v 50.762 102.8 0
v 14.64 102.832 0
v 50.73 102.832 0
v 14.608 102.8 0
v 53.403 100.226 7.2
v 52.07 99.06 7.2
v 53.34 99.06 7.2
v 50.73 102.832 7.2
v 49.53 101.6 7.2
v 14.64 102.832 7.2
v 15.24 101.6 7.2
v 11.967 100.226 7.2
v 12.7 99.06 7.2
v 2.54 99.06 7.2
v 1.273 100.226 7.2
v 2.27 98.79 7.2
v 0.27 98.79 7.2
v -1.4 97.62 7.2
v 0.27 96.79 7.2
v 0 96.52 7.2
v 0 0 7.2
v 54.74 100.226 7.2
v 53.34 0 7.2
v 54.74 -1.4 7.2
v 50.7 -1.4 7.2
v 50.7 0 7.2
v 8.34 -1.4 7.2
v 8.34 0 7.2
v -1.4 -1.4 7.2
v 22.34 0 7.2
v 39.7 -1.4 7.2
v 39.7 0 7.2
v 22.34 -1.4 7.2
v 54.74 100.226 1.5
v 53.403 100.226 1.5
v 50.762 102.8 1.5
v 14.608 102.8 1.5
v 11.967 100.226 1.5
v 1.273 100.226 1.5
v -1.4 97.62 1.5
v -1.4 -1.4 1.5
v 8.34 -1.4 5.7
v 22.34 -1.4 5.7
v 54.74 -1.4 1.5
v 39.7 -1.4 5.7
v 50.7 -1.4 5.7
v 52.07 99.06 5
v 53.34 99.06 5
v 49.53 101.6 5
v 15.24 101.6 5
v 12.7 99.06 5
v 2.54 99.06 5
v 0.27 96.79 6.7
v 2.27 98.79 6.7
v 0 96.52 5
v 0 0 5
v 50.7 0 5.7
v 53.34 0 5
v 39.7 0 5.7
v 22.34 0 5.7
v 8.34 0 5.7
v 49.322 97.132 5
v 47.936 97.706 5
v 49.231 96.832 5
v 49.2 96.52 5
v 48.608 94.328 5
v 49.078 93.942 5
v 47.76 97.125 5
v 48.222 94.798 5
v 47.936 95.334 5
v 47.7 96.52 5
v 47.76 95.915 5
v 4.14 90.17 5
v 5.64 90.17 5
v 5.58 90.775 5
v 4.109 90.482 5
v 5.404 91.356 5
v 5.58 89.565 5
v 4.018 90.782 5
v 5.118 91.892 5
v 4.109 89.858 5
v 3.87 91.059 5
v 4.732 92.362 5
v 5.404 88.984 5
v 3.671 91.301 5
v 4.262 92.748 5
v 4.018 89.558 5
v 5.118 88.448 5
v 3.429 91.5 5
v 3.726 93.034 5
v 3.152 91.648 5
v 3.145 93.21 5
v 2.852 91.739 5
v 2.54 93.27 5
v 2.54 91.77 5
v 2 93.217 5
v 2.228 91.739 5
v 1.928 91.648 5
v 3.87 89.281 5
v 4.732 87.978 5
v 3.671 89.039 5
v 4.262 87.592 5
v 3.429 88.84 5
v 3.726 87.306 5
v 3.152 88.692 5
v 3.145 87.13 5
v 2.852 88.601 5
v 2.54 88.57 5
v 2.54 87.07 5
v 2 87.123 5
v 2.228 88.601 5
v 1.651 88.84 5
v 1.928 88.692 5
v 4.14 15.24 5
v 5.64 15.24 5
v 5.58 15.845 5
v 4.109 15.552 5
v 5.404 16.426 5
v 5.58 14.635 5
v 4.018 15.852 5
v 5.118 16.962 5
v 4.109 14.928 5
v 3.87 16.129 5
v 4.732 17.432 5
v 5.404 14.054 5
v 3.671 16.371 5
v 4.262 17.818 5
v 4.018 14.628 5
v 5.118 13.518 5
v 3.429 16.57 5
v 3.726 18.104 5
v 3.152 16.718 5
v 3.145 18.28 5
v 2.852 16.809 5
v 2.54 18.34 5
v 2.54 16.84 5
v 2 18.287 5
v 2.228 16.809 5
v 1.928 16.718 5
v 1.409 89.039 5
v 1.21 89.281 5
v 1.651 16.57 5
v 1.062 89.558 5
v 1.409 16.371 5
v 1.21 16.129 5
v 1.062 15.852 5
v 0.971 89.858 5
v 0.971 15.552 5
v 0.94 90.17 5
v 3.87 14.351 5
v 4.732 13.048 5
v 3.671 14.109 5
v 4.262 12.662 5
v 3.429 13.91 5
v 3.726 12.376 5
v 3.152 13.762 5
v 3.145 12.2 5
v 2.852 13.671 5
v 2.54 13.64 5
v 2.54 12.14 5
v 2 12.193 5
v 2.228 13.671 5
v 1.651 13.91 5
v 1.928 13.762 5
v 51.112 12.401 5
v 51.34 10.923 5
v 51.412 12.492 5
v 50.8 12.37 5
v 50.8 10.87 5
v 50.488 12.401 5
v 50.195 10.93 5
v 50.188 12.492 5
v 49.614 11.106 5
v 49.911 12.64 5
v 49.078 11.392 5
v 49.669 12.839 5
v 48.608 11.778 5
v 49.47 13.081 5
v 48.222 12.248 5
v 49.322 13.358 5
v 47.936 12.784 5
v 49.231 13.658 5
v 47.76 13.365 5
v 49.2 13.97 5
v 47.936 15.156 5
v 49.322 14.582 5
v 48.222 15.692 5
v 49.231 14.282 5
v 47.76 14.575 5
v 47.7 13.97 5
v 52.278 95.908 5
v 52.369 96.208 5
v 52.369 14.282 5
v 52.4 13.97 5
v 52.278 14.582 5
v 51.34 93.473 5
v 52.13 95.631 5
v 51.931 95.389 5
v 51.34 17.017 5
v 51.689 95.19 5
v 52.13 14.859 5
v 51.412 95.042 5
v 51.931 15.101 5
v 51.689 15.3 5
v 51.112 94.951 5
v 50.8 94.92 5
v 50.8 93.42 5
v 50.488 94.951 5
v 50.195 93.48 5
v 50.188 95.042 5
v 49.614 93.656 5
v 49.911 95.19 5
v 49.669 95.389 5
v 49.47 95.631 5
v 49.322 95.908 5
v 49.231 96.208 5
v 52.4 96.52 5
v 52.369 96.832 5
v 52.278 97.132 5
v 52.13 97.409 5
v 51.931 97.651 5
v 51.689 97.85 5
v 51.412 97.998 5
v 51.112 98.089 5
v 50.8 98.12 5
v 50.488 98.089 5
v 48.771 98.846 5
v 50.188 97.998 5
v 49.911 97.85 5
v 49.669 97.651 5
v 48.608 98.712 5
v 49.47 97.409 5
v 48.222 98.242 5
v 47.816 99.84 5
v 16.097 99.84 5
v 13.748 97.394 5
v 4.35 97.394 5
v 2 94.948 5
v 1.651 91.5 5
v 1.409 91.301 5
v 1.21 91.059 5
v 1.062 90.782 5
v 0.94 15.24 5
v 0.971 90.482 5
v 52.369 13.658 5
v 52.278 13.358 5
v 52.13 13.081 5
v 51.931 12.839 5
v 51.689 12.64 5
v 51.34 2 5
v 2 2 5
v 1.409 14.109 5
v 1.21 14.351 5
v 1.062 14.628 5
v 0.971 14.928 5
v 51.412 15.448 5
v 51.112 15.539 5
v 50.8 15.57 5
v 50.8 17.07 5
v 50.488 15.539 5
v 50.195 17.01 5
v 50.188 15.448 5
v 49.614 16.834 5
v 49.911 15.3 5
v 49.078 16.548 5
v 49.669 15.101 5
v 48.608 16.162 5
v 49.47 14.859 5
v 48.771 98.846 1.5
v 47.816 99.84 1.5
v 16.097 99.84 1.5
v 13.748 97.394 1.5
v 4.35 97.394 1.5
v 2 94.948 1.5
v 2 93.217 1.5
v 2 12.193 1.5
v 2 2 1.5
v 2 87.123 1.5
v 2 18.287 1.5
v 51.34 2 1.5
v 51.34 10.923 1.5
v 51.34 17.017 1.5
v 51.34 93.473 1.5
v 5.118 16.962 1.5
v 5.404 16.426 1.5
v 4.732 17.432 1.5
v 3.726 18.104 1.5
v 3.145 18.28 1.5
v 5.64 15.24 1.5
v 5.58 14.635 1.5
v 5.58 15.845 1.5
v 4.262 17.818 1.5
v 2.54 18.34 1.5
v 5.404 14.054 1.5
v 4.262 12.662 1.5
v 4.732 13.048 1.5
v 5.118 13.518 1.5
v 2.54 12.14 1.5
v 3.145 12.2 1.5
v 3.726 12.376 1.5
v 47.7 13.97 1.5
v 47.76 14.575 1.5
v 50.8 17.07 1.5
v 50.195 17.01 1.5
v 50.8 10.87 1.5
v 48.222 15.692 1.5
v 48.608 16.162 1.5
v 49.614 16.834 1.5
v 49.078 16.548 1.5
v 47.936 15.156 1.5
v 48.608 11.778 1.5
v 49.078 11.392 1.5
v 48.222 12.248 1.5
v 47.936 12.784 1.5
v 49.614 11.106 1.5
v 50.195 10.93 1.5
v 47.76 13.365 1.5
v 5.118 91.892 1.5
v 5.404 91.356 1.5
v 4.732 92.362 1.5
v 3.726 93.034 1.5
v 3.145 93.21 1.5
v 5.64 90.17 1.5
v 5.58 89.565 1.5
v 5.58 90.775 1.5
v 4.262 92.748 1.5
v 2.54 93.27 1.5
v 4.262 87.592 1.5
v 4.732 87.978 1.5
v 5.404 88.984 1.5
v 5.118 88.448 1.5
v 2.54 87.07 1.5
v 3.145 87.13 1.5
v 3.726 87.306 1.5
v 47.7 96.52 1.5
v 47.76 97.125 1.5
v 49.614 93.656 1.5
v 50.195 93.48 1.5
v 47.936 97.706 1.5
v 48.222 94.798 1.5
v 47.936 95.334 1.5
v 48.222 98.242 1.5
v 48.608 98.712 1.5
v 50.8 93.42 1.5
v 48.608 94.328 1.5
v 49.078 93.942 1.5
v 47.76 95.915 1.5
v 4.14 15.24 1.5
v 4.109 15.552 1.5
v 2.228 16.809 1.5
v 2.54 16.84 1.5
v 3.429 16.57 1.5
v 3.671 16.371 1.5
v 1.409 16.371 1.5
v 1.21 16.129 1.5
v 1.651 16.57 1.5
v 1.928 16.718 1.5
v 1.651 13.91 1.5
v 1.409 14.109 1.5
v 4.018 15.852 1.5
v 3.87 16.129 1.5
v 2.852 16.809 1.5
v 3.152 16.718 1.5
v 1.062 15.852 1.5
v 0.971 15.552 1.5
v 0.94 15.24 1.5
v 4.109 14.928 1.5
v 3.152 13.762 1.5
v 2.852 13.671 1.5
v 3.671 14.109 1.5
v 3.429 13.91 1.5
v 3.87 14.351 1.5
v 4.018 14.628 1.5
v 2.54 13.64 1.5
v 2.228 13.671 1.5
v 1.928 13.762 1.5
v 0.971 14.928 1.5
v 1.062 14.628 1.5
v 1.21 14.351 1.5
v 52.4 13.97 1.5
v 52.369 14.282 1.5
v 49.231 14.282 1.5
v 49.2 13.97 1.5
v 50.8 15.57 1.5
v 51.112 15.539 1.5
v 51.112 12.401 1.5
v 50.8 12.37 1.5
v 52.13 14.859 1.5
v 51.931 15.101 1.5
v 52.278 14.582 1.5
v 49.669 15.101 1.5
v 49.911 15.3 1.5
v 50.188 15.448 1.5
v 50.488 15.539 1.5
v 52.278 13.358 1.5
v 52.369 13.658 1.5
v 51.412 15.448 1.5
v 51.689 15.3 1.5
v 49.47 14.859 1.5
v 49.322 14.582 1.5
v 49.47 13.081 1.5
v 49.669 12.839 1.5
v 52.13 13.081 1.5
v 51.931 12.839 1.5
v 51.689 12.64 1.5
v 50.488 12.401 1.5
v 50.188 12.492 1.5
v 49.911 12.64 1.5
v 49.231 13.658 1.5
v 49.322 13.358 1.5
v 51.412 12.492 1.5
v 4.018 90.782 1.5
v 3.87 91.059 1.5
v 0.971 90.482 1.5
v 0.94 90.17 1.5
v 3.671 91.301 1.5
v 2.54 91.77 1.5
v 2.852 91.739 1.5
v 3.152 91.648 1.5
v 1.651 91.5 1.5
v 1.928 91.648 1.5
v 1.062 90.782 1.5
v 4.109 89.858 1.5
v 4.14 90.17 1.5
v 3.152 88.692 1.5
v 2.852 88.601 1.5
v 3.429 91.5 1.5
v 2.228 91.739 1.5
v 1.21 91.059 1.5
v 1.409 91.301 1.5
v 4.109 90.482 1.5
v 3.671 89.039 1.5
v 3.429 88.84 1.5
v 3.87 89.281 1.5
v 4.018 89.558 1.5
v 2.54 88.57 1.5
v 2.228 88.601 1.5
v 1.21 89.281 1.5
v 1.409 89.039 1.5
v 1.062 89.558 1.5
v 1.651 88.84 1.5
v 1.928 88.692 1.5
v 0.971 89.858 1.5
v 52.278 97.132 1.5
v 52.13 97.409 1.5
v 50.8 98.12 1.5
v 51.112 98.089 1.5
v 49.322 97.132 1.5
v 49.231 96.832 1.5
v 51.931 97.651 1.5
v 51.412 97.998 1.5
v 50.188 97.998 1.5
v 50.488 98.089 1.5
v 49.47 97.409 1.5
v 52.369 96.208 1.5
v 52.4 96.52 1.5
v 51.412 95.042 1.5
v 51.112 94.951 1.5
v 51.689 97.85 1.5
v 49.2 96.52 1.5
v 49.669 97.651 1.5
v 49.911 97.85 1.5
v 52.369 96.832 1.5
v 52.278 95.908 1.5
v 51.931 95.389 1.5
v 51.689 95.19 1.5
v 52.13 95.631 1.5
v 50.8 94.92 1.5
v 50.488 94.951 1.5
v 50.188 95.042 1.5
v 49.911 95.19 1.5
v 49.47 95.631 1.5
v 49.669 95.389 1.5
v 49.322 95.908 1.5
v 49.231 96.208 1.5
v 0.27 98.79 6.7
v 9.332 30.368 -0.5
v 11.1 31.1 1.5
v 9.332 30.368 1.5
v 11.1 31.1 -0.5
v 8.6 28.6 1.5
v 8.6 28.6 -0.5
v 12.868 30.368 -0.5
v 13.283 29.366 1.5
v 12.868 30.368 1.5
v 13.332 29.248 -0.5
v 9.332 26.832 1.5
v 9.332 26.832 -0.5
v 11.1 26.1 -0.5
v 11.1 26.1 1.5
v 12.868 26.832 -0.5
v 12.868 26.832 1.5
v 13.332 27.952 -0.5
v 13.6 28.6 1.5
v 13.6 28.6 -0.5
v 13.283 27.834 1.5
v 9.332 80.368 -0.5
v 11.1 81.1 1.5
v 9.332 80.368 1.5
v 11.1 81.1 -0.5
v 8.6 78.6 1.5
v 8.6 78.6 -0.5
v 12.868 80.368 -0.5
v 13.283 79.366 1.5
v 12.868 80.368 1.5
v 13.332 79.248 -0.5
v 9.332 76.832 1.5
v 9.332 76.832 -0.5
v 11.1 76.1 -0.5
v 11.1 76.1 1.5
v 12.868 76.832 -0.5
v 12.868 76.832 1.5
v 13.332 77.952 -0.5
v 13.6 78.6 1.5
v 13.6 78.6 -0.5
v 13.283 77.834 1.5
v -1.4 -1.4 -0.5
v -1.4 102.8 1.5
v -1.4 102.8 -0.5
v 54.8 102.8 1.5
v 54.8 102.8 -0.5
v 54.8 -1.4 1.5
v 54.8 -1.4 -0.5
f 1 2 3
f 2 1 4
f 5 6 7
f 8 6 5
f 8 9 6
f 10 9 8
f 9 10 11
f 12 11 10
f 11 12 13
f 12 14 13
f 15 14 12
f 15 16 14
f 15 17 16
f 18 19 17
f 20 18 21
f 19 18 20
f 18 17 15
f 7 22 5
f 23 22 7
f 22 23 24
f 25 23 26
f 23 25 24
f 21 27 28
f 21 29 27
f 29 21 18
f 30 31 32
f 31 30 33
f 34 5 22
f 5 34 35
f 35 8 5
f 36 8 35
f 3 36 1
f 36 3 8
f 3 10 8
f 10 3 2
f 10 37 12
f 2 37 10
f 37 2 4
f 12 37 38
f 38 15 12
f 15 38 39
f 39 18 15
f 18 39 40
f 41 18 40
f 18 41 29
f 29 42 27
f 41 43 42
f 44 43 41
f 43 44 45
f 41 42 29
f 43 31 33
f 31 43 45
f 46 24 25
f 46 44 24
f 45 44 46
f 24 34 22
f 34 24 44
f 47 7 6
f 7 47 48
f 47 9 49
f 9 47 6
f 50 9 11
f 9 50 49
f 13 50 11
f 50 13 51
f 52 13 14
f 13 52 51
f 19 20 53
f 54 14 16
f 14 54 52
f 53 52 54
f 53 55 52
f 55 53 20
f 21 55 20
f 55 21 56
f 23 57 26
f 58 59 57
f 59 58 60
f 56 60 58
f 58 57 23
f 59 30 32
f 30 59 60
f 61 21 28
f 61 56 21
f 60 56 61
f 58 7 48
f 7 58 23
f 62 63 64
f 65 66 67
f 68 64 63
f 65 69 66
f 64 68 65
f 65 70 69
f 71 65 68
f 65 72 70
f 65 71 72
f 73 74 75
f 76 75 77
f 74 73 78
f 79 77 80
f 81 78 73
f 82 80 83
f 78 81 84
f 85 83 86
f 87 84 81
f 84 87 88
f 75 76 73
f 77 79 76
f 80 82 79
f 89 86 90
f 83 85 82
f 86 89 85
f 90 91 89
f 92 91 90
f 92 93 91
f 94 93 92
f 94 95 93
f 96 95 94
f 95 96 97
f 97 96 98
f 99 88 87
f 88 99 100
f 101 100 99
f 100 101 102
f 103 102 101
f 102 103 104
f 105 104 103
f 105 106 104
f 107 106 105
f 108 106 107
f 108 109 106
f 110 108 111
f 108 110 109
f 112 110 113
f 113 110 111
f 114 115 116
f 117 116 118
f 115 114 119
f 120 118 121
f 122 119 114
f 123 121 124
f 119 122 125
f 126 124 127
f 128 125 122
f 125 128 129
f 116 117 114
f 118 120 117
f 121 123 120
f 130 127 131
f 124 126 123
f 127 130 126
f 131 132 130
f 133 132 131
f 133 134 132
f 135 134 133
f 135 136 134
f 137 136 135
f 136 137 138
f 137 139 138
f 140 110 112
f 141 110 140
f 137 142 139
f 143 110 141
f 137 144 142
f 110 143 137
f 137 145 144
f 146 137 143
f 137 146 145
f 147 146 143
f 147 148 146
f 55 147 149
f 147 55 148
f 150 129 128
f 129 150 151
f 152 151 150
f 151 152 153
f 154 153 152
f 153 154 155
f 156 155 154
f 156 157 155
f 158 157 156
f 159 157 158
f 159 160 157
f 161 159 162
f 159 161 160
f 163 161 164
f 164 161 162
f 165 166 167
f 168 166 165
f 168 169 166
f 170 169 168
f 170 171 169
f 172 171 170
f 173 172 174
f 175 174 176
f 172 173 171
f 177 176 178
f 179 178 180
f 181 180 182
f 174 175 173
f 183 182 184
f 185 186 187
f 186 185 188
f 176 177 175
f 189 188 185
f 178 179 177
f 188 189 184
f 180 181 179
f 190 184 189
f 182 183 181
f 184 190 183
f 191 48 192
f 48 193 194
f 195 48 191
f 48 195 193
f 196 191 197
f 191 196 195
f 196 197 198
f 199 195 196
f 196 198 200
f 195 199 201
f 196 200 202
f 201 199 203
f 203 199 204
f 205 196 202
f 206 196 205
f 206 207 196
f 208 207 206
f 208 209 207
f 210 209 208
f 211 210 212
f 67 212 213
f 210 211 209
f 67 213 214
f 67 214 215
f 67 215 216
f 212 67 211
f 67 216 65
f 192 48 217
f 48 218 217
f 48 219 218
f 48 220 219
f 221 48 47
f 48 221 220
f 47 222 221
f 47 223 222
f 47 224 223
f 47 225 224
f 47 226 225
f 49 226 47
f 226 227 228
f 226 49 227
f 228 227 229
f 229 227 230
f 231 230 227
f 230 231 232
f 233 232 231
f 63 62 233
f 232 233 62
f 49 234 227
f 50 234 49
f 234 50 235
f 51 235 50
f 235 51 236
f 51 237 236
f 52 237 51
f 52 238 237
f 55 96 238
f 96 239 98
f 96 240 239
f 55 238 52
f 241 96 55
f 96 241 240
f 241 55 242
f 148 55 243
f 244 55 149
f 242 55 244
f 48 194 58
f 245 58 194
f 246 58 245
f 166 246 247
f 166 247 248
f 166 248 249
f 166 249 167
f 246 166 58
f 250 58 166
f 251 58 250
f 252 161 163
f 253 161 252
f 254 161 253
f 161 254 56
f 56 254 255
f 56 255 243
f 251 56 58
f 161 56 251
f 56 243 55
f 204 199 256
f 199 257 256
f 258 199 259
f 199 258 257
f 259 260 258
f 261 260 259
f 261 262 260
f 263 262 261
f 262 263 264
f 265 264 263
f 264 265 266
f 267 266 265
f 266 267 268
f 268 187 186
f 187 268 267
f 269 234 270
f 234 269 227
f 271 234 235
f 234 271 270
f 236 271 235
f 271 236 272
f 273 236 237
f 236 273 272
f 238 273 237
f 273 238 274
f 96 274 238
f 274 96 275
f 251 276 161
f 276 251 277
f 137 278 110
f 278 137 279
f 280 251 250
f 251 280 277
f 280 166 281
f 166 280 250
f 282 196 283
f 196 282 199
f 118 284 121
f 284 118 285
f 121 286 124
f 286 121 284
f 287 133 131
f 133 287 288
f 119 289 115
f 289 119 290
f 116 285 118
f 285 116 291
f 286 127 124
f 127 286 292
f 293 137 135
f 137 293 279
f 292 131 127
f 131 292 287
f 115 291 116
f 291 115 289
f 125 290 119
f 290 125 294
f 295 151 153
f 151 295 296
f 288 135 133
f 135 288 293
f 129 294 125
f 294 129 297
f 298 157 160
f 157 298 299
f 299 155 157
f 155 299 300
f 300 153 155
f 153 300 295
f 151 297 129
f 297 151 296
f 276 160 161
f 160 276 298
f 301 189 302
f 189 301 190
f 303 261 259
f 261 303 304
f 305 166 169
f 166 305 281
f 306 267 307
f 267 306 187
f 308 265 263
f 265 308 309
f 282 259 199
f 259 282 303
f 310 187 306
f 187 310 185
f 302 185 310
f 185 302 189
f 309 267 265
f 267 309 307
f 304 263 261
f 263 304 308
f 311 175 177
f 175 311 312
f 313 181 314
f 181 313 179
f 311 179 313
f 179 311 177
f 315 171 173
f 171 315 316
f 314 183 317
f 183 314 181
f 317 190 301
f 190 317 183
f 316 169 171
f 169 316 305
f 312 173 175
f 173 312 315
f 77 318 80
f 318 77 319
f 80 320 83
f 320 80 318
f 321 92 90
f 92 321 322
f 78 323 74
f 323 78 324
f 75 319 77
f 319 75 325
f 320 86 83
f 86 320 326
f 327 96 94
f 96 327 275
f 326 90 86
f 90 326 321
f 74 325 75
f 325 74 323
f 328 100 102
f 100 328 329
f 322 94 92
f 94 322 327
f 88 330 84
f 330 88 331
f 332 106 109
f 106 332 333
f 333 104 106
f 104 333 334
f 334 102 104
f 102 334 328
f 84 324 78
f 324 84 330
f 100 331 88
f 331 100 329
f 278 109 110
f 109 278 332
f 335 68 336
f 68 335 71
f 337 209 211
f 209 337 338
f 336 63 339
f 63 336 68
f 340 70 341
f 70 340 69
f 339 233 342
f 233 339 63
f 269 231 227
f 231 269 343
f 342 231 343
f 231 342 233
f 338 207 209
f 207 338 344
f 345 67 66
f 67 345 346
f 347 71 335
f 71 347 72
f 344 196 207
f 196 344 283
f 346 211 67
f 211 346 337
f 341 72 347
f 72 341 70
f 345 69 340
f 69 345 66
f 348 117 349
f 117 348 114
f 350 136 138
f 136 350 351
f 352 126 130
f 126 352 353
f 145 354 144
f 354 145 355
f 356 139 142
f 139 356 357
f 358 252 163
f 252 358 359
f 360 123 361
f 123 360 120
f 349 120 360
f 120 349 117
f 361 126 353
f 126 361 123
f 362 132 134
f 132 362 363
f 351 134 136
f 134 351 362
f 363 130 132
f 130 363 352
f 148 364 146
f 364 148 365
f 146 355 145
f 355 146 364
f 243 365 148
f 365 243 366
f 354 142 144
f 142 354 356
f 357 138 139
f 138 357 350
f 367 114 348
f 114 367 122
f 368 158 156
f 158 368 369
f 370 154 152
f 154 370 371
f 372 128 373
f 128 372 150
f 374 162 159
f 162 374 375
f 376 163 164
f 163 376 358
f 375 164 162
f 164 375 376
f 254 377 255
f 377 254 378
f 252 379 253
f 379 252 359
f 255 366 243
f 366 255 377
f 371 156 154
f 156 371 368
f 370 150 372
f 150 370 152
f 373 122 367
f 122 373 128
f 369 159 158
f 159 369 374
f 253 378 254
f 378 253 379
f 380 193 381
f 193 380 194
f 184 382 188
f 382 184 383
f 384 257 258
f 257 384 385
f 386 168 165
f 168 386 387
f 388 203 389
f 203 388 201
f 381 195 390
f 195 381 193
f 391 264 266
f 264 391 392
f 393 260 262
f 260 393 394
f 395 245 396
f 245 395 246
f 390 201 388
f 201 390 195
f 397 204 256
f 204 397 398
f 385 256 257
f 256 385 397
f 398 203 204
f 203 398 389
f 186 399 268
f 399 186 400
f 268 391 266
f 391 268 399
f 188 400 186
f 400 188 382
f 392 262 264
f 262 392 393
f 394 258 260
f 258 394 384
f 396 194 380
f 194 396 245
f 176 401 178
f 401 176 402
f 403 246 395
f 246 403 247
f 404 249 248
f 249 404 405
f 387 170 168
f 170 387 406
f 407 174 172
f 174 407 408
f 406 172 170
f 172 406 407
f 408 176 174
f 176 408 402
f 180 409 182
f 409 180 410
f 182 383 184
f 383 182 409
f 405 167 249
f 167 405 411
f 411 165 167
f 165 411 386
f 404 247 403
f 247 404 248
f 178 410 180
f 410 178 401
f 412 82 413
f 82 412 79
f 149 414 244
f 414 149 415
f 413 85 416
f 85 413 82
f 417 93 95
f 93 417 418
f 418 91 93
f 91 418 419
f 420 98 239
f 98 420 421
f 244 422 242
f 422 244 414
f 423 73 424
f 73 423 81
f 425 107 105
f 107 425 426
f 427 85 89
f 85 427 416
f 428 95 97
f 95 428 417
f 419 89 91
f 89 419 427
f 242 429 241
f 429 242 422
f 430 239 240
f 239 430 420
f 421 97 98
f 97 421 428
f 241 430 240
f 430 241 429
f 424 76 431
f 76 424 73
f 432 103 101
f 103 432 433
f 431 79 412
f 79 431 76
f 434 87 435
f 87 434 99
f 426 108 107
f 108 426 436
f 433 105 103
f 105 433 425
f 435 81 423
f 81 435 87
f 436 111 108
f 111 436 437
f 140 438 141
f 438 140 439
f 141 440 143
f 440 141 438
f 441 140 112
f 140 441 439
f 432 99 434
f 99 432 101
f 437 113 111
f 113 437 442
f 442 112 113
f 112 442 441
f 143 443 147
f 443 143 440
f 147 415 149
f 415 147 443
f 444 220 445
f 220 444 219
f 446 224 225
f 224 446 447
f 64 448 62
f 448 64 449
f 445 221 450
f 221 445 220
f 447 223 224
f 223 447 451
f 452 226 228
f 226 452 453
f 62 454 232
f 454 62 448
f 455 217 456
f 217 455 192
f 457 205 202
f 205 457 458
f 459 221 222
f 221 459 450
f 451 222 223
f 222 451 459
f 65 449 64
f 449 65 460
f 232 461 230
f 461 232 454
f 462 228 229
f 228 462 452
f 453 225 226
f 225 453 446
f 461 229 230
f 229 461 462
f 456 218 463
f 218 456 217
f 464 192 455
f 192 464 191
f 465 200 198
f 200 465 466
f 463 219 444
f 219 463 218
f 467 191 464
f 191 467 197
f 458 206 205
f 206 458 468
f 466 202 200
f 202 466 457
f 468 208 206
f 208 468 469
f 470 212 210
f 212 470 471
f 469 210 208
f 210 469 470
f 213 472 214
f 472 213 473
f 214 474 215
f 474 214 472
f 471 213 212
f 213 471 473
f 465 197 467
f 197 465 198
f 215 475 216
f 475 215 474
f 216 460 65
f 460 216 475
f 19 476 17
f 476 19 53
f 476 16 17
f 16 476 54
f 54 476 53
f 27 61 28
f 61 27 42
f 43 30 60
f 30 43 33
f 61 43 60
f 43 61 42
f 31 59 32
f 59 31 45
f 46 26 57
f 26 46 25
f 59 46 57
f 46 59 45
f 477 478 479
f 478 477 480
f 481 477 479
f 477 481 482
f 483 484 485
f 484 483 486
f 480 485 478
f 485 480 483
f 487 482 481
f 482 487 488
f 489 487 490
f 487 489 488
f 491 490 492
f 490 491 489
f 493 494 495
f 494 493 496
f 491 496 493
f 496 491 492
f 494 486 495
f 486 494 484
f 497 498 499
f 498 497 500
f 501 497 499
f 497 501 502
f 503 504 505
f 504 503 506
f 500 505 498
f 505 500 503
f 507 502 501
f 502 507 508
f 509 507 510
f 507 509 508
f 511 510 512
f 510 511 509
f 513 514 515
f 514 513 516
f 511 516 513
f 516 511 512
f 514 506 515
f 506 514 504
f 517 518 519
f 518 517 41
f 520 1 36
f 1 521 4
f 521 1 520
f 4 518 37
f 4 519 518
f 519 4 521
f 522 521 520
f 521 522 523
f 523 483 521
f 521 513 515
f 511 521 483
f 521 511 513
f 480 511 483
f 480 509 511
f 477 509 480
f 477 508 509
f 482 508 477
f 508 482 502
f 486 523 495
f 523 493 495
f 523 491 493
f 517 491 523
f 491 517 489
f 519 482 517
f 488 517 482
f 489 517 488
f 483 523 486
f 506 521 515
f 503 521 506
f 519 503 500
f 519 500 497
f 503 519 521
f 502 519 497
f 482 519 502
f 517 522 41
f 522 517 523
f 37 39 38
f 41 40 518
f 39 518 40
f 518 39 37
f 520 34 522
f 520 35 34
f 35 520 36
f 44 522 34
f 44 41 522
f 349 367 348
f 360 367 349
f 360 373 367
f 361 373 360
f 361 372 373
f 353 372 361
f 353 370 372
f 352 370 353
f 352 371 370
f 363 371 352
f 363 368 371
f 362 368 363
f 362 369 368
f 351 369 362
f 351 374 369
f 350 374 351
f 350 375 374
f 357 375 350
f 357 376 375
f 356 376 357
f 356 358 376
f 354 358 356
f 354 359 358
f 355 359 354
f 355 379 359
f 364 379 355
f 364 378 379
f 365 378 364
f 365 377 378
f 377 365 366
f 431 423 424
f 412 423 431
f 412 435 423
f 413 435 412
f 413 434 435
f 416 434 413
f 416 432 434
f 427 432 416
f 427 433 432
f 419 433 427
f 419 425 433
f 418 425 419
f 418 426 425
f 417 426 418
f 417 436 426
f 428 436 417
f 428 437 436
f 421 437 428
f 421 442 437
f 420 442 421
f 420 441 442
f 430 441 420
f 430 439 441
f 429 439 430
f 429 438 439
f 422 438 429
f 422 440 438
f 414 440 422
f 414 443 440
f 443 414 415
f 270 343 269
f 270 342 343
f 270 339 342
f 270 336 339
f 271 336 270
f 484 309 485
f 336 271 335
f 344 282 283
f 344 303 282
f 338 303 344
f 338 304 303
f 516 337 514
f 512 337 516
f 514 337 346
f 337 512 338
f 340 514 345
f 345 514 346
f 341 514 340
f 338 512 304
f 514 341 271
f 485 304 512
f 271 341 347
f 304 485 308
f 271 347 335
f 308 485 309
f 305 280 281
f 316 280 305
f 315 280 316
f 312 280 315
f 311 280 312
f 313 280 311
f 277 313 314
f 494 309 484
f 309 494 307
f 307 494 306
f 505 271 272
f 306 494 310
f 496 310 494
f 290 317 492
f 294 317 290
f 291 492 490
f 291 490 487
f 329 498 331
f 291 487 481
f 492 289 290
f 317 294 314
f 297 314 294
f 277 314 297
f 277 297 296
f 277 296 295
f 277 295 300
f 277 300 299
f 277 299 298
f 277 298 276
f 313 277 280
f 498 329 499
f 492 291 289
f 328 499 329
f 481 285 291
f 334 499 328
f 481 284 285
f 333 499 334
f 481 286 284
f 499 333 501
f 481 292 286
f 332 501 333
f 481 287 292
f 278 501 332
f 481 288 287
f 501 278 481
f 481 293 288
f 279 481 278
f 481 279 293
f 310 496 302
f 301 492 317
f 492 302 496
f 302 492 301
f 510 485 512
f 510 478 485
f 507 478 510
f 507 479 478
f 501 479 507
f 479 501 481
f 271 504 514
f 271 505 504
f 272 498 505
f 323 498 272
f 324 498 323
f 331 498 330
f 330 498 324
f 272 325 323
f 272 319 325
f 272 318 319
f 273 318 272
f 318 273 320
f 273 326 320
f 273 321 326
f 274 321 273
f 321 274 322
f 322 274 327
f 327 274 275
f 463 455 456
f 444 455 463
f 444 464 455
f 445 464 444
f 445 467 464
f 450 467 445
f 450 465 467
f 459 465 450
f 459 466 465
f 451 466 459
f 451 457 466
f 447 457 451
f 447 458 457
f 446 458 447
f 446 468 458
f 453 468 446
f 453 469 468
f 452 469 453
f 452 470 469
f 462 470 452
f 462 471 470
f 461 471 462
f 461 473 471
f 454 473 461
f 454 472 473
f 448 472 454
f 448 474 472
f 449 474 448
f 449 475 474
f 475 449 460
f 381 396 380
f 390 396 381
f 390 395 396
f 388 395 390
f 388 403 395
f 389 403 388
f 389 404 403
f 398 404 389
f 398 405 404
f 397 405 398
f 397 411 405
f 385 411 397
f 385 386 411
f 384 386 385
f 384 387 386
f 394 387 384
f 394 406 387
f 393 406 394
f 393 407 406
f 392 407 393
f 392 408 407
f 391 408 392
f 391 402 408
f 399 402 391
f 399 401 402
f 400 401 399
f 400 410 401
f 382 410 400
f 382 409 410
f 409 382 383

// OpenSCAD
// file: inc/pins.scad
// Pin Connectors V3
// Tony Buser <tbuser@gmail.com>
// Modified by Emmett Lalish

object=0;//[0:pin,1:pinpeg,2:pinhole]
length=20;
diameter=8;
//Only affects pinhole
hole_twist=0;//[0:free,1:fixed]
//Only affects pinhole
hole_friction=0;//[0:loose,1:tight]
//Radial gap to help pins fit into tight holes
pin_tolerance=0.2;
//Extra gap to make loose hole
loose=0.3;
lip_height=3;
lip_thickness=1;
hf=hole_friction==0 ? false : true;
ht=hole_twist==0 ? false : true;

if(object==0)pin(h=length,r=diameter/2,lh=lip_height,lt=lip_thickness,t=pin_tolerance);
if(object==1)pinpeg(h=length,r=diameter/2,lh=lip_height,lt=lip_thickness,t=pin_tolerance);
if(object==2)pinhole(h=length,r=diameter/2,lh=lip_height,lt=lip_thickness,t=loose,
	tight=hf,fixed=ht);

module test() {
  tolerance = 0.3;
  
  translate([-12, 12, 0]) pinpeg(h=20);
  translate([12, 12, 0]) pintack(h=10);
  
  difference() {
    union() {
      translate([0, -12, 2.5]) cube(size = [59, 20, 5], center = true);
      translate([24, -12, 7.5]) cube(size = [12, 20, 15], center = true);
    }
    translate([-24, -12, 0]) pinhole(h=5, t=tolerance);
    translate([-12, -12, 0]) pinhole(h=5, t=tolerance, tight=false);
    translate([0, -12, 0]) pinhole(h=10, t=tolerance);
    translate([12, -12, 0]) pinhole(h=10, t=tolerance, tight=false);
    translate([24, -12, 15]) rotate([0, 180, 0]) pinhole(h=10, t=tolerance);
  }
}

module pinhole(h=10, r=4, lh=3, lt=1, t=0.3, tight=true, fixed=false) {
  // h = shaft height
  // r = shaft radius
  // lh = lip height
  // lt = lip thickness
  // t = extra tolerance for loose fit
  // tight = set to false if you want a joint that spins easily
  // fixed = set to true so pins can't spin
  
intersection(){
  union() {
	if (tight == true || fixed == true) {
      pin_solid(h, r, lh, lt);
	  translate([0,0,-t/2])cylinder(h=h+t, r=r, $fn=30);
	} else {
	  pin_solid(h, r+t/2, lh, lt);
	  translate([0,0,-t/2])cylinder(h=h+t, r=r+t/2, $fn=30);
	}
    
    
    // widen the entrance hole to make insertion easier
    //translate([0, 0, -0.1]) cylinder(h=lh/3, r2=r, r1=r+(t/2)+(lt/2),$fn=30);
  }
  if (fixed == true) {
	translate([-r*2, -r*0.75, -1])cube([r*4, r*1.5, h+2]);
  }
}}

module pin(h=10, r=4, lh=3, lt=1, t=0.2, side=false) {
  // h = shaft height
  // r = shaft radius
  // lh = lip height
  // lt = lip thickness
  // side = set to true if you want it printed horizontally

  if (side) {
    pin_horizontal(h, r, lh, lt, t);
  } else {
    //pin_vertical(h, r, lh, lt, t);
  }
}

module pintack(h=10, r=4, lh=3, lt=1, t=0.2, bh=3, br=8.75) {
  // bh = base_height
  // br = base_radius
  
  union() {
    cylinder(h=bh, r=br);
    translate([0, 0, bh]) pin(h, r, lh, lt, t);
  }
}

module pinpeg(h=20, r=4, lh=3, lt=1, t=0.2) {
  union() {
    translate([0,-0.05, 0]) pin(h/2+0.1, r, lh, lt, t, side=true);
    translate([0,0.05, 0]) rotate([0, 0, 180]) pin(h/2+0.1, r, lh, lt, t, side=true);
  }
}

// just call pin instead, I made this module because it was easier to do the rotation option this way
// since openscad complains of recursion if I did it all in one module
module pin_vertical(h=10, r=4, lh=3, lt=1, t=0.2) {
  // h = shaft height
  // r = shaft radius
  // lh = lip height
  // lt = lip thickness

  difference() {
    pin_solid(h, r-t/2, lh, lt);
    
    // center cut
    translate([-lt*3/2, -(r*2+lt*2)/2, h/5+lt*3/2]) cube([lt*3, r*2+lt*2, h]);
    //translate([0, 0, h/4]) cylinder(h=h+lh, r=r/2.5, $fn=20);
    // center curve
    translate([0, 0, h/5+lt*3/2]) rotate([90, 0, 0]) cylinder(h=r*2, r=lt*3/2, center=true, $fn=20);
  
    // side cuts
    translate([-r*2, -r-r*0.75+t/2, -1]) cube([r*4, r, h+2]);
    translate([-r*2, r*0.75-t/2, -1]) cube([r*4, r, h+2]);
  }
}

// call pin with side=true instead of this
module pin_horizontal(h=10, r=4, lh=3, lt=1, t=0.2) {
  // h = shaft height
  // r = shaft radius
  // lh = lip height
  // lt = lip thickness
  translate([0, 0, r*0.75-t/2]) rotate([-90, 0, 0]) pin_vertical(h, r, lh, lt, t);
}

// this is mainly to make the pinhole module easier
module pin_solid(h=10, r=4, lh=3, lt=1) {
  union() {
    // shaft
    cylinder(h=h-lh, r=r, $fn=30);
    // lip
    // translate([0, 0, h-lh]) cylinder(h=lh*0.25, r1=r, r2=r+(lt/2), $fn=30);
    // translate([0, 0, h-lh+lh*0.25]) cylinder(h=lh*0.25, r2=r, r1=r+(lt/2), $fn=30);
    // translate([0, 0, h-lh+lh*0.50]) cylinder(h=lh*0.50, r1=r, r2=r-(lt/2), $fn=30);

    // translate([0, 0, h-lh]) cylinder(h=lh*0.50, r1=r, r2=r+(lt/2), $fn=30);
    // translate([0, 0, h-lh+lh*0.50]) cylinder(h=lh*0.50, r1=r+(lt/2), r2=r-(lt/3), $fn=30);    

    translate([0, 0, h-lh]) cylinder(h=lh*0.25, r1=r, r2=r+(lt/2), $fn=30);
    translate([0, 0, h-lh+lh*0.25]) cylinder(h=lh*0.25, r=r+(lt/2), $fn=30);    
    translate([0, 0, h-lh+lh*0.50]) cylinder(h=lh*0.50, r1=r+(lt/2), r2=r-(lt/2), $fn=30);    

    // translate([0, 0, h-lh]) cylinder(h=lh, r1=r+(lt/2), r2=1, $fn=30);
    // translate([0, 0, h-lh-lt/2]) cylinder(h=lt/2, r1=r, r2=r+(lt/2), $fn=30);
  }
}

module pinshaft(h=10, r=4, t=0.2, side=false){
flip=side ? 1 : 0;
translate(flip*[0,h/2,r*0.75-t/2])rotate(flip*[90,0,0])
intersection(){
	cylinder(h=h, r=r-t/2, $fn=30);
	translate([-r*2, -r*0.75+t/2, -1])cube([r*4, r*1.5-t, h+2]);
}
}
// file: inc/functions.scad
// PRUSA iteration3
// Functions used in many files
// GNU GPL v3
// Josef Průša <josefprusa@me.com>
// Václav 'ax' Hůla <axtheb@gmail.com>
// Vlnofka <>
// http://www.reprap.org/wiki/Prusa_Mendel
// http://github.com/josefprusa/Prusa3


module nut(d,h,horizontal=true){
    cornerdiameter =  (d / 2) / cos (180 / 6);
    cylinder(h = h, r = cornerdiameter, $fn = 6);
    if(horizontal){
        for(i = [1:6]){
            rotate([0,0,60*i]) translate([-cornerdiameter-0.2,0,0]) rotate([0,0,-45]) cube([2,2,h]);
        }
    }
}

module fillet(radius, height=100, $fn=0) {
    //this creates acutal fillet
    translate([-radius, -radius, -height / 2 - 0.02]) difference() {
        cube([radius * 2, radius * 2, height + 0.04]);
        if ($fn == 0 && (radius == 2 || radius == 3 || radius == 4)) {
            cylinder(r=radius, h=height + 0.04, $fn=4 * radius);
        } else {
            cylinder(r=radius, h=height + 0.04, $fn=$fn);
        }

    }
}

module cube_fillet(size, radius=-1, vertical=[3,3,3,3], top=[0,0,0,0], bottom=[0,0,0,0], center=false, $fn=0){
    //
    if (use_fillets == 1) {
        if (center) {
            cube_fillet_inside(size, radius, vertical, top, bottom, $fn);
        } else {
            translate([size[0]/2, size[1]/2, size[2]/2])
                cube_fillet_inside(size, radius, vertical, top, bottom, $fn);
        }
    } else {
        if (use_fillets == 2) {
            if (center) {
                cube_fillet_inside(size, radius, vertical, top, bottom, 4);
            } else {
                translate([size[0]/2, size[1]/2, size[2]/2])
                    cube_fillet_inside(size, radius, vertical, top, bottom, 4);
            }

        } else {
            cube(size, center);
        }
    }

}

module cube_negative_fillet(size, radius=-1, vertical=[3,3,3,3], top=[0,0,0,0], bottom=[0,0,0,0], $fn=0){

    j=[1,0,1,0];

    for (i=[0:3]) {
        if (radius > -1) {
            rotate([0, 0, 90*i]) translate([size[1-j[i]]/2, size[j[i]]/2, 0]) fillet(radius, size[2], $fn=$fn);
        } else {
            rotate([0, 0, 90*i]) translate([size[1-j[i]]/2, size[j[i]]/2, 0]) fillet(vertical[i], size[2], $fn=$fn);
        }
        rotate([90*i, -90, 0]) translate([size[2]/2, size[j[i]]/2, 0 ]) fillet(top[i], size[1-j[i]], $fn=$fn);
        rotate([90*(4-i), 90, 0]) translate([size[2]/2, size[j[i]]/2, 0]) fillet(bottom[i], size[1-j[i]], $fn=$fn);

    }
}

module cube_fillet_inside(size, radius=-1, vertical=[3,3,3,3], top=[0,0,0,0], bottom=[0,0,0,0], $fn=0){
    //makes CENTERED cube with round corners
    // if you give it radius, it will fillet vertical corners.
    //othervise use vertical, top, bottom arrays
    //when viewed from top, it starts in upper right corner (+x,+y quadrant) , goes counterclockwise
    //top/bottom fillet starts in direction of Y axis and goes CCW too


    if (radius == 0) {
        cube(size, center=true);
    } else {
        difference() {
            cube(size, center=true);
            cube_negative_fillet(size, radius, vertical, top, bottom, $fn);
        }
    }
}


module nema17(places=[1,1,1,1], size=15.5, h=10, holes=false, shadow=false, $fn=24){
    for (i=[0:3]) {
        if (places[i] == 1) {
            rotate([0, 0, 90*i]) translate([size, size, 0]) {
                if (holes) {
                    rotate([0, 0, -90*i])  translate([0,0,-10]) screw(r=1.7, slant=false, head_drop=13, $fn=$fn, h=h+12);
                } else {
                    rotate([0, 0, -90*i]) cylinder(h=h, r=5.5, $fn=$fn);
                }
            }
        }
    }
    if (shadow != false) {
        %translate ([0, 0, shadow+21+3]) cube([42,42,42], center = true);
    //flange
        %translate ([0, 0, shadow+21+3-21-1]) cylinder(r=11,h=2, center = true, $fn=20);
    //shaft
        %translate ([0, 0, shadow+21+3-21-7]) cylinder(r=2.5,h=14, center = true);
    }
}

module screw(h=20, r=2, r_head=3.5, head_drop=0, slant=i_am_box, poly=false, $fn=0){
    //makes screw with head
    //for substraction as screw hole
    if (poly) {
        cylinder_poly(h=h, r=r, $fn=$fn);
    } else {
        cylinder(h=h, r=r, $fn=$fn);
    }
    if (slant) {
        translate([0, 0, head_drop-0.01]) cylinder(h=r_head, r2=0, r1=r_head, $fn=$fn);
    }

    if (head_drop > 0) {
        translate([0, 0, -0.01]) cylinder(h=head_drop+0.01, r=r_head, $fn=$fn);
    }
}

module plate_screw(long=0) {
    if (i_am_box == 0) {
        translate([0, 0, -long]) screw(head_drop=14 + long, h=30 + long, r_head=3.6, r=1.7, $fn=24, slant=false);
    } else {
        translate([0, 0, -2 - long]) screw(head_drop=14 + long, h=30 + long, r_head=4.5, r=2, $fn=24, slant=true);
    }
}

//radius of the idler assembly (to surface that touches belt, ignoring guide walls)
function idler_assy_r_inner(idler_bearing) = (idler_bearing[0] / 2) + (6 * single_wall_width + 0.2) * idler_bearing[3];
//outer radius of the idler assembly (to smooth side of belt) 
function idler_assy_r_outer(idler_bearing) = idler_assy_r_inner(idler_bearing) + belt_thickness + 1;

module ext2020(l=20) {
  difference(){
    cube([20,20,l], center=true);
    translate([10-1.5,0,0])cube([3,6,l], center=true);
    translate([-10+1.5,0,0])cube([3,6,l], center=true);
    translate([0,10-1.5,0])cube([6,3,l], center=true);
    translate([0,-10+1.5,0])cube([6,3,l], center=true);
  }
}

module idler_assy(idler_bearing = [22, 7, 8, 1]) {

    //bearing axle
    translate([0,0,-1]) cylinder(h = 120, r=(idler_bearing[2] + 1) / 2, $fn=small_hole_segments, center=true);
    //bearing shadow
    %cylinder(h = idler_bearing[1], r=idler_bearing[0]/2, center=true);
    //belt shadow
    %cylinder(h = belt_width, r=idler_assy_r_outer(idler_bearing), center=true);

    cylinder(h = idler_width + 1, r=idler_assy_r_outer(idler_bearing) + 0.5, center=true);
}

module belt(len, side = 0){
    //belt. To be substracted from model
    //len is in +Z, smooth side in +X, Y centered
    translate([-0.5, 0, 0]) maketeeth(len);
    translate([0, -4.5, -0.01]) cube([belt_thickness, 9, len + 0.02]);
    if (side != 0) {
    translate([0, -4.5 + side, -0.01]) cube_fillet([belt_thickness, 9, len + 0.02], vertical = [3, 0, 0, 0]);
    }
}


module maketeeth(len){
    //Belt teeth. 
    for (i = [0 : len / belt_tooth_distance]) {
        translate([0, 0, i * belt_tooth_distance]) cube([2, 9, belt_tooth_distance * belt_tooth_ratio], center = true);
    }
}
// file: inc/frame_hold1.scad
use<functions.scad>
include<arduino.scad>

module base_plate() {
  translate([11.1,-1.4,-11.5])rotate([-90,0,0])
  {
    difference() 
    {
      union() {
        translate([15.60,-12,(104.2/2)])cube([56.2,2,104.2],center=true);
      }
      ext2020(l=100);
      for (i = [30, 80]) 
        translate([0,0,i])rotate([0,-90,90])cylinder(r=2.5,h=30);
      for (i = [30, 80]) 
        translate([0,0,i])rotate([0,-90,0])cylinder(r=2.5,h=30);

      translate([6,6,120/2])cube([25,25,120],center=true);
      translate([0,20,120/2])cube([25,25,120],center=true);
      translate([10.6,2.5,120/2])cube([6,25,120],center=true);
    }
  }
}
module corner_brace(nosupport=false) {
      difference() 
      {
        union() {
          translate([0,0,(100/2)])cube([25,25,100],center=true);
        }
        ext2020(l=100);
        if (nosupport)
        {
          translate([0,0,100/2])

            translate([-10+1.5,0,0])cube([3,6,100], center=true);
            translate([10-1.5,0,0])cube([3,6,100], center=true);
        }

        for (i = [30, 80]) 
          translate([0,0,i])rotate([0,-90,90])cylinder(r=2.5,h=30);
        for (i = [30, 80]) 
          translate([0,0,i])rotate([0,-90,0])cylinder(r=2.5,h=30);

        translate([6,6,120/2])cube([25,25,120],center=true);
        translate([0,20,120/2])cube([25,25,120],center=true);
        translate([10.6,2.5,120/2])cube([6,25,120],center=true);
      }
}
module frame_mount(corner_brace=false,enclosure=true,nosupport=false) 
{
  if(enclosure)
  {
    difference(){
      translate([0,0,-0.5])enclosure(boardType=MEGA2560, mountingHoles=false);
      translate([-50,-50,20])cube(500,500,500);
      translate([0,0,25])enclosure(boardType=MEGA2560, mountingHoles=false);
      translate([11.1,-1.4,-11.5])rotate([-90,0,0])
        translate([15.60,-12,(104.2/2)])cube([56.2,4,104.2],center=true);

      translate([-11,-1.4,12])rotate([-90,180,0])
      {
        for (i = [30, 80]) 
          translate([0,0,i])rotate([0,-90,90])cylinder(r=2.5,h=30);
        for (i = [30, 80]) 
          translate([0,0,i])rotate([0,-90,0])cylinder(r=2.5,h=30);

      }
        

    }

  }else{
    bumper(boardType=MEGA2560, mountingHoles=false);
  }
  base_plate();


  if (corner_brace) { 
    if (enclosure) {
      translate([-16,-1.4,12])rotate([-90,180,0])
        corner_brace(nosupport);
    } else {
      translate([-13,-1.4,12])rotate([-90,180,0])
        corner_brace(nosupport);
    }
  }
}
// main file
include<inc/frame_hold1.scad>
frame_mount(corner_brace=false,enclosure=false,nosupport=true);
